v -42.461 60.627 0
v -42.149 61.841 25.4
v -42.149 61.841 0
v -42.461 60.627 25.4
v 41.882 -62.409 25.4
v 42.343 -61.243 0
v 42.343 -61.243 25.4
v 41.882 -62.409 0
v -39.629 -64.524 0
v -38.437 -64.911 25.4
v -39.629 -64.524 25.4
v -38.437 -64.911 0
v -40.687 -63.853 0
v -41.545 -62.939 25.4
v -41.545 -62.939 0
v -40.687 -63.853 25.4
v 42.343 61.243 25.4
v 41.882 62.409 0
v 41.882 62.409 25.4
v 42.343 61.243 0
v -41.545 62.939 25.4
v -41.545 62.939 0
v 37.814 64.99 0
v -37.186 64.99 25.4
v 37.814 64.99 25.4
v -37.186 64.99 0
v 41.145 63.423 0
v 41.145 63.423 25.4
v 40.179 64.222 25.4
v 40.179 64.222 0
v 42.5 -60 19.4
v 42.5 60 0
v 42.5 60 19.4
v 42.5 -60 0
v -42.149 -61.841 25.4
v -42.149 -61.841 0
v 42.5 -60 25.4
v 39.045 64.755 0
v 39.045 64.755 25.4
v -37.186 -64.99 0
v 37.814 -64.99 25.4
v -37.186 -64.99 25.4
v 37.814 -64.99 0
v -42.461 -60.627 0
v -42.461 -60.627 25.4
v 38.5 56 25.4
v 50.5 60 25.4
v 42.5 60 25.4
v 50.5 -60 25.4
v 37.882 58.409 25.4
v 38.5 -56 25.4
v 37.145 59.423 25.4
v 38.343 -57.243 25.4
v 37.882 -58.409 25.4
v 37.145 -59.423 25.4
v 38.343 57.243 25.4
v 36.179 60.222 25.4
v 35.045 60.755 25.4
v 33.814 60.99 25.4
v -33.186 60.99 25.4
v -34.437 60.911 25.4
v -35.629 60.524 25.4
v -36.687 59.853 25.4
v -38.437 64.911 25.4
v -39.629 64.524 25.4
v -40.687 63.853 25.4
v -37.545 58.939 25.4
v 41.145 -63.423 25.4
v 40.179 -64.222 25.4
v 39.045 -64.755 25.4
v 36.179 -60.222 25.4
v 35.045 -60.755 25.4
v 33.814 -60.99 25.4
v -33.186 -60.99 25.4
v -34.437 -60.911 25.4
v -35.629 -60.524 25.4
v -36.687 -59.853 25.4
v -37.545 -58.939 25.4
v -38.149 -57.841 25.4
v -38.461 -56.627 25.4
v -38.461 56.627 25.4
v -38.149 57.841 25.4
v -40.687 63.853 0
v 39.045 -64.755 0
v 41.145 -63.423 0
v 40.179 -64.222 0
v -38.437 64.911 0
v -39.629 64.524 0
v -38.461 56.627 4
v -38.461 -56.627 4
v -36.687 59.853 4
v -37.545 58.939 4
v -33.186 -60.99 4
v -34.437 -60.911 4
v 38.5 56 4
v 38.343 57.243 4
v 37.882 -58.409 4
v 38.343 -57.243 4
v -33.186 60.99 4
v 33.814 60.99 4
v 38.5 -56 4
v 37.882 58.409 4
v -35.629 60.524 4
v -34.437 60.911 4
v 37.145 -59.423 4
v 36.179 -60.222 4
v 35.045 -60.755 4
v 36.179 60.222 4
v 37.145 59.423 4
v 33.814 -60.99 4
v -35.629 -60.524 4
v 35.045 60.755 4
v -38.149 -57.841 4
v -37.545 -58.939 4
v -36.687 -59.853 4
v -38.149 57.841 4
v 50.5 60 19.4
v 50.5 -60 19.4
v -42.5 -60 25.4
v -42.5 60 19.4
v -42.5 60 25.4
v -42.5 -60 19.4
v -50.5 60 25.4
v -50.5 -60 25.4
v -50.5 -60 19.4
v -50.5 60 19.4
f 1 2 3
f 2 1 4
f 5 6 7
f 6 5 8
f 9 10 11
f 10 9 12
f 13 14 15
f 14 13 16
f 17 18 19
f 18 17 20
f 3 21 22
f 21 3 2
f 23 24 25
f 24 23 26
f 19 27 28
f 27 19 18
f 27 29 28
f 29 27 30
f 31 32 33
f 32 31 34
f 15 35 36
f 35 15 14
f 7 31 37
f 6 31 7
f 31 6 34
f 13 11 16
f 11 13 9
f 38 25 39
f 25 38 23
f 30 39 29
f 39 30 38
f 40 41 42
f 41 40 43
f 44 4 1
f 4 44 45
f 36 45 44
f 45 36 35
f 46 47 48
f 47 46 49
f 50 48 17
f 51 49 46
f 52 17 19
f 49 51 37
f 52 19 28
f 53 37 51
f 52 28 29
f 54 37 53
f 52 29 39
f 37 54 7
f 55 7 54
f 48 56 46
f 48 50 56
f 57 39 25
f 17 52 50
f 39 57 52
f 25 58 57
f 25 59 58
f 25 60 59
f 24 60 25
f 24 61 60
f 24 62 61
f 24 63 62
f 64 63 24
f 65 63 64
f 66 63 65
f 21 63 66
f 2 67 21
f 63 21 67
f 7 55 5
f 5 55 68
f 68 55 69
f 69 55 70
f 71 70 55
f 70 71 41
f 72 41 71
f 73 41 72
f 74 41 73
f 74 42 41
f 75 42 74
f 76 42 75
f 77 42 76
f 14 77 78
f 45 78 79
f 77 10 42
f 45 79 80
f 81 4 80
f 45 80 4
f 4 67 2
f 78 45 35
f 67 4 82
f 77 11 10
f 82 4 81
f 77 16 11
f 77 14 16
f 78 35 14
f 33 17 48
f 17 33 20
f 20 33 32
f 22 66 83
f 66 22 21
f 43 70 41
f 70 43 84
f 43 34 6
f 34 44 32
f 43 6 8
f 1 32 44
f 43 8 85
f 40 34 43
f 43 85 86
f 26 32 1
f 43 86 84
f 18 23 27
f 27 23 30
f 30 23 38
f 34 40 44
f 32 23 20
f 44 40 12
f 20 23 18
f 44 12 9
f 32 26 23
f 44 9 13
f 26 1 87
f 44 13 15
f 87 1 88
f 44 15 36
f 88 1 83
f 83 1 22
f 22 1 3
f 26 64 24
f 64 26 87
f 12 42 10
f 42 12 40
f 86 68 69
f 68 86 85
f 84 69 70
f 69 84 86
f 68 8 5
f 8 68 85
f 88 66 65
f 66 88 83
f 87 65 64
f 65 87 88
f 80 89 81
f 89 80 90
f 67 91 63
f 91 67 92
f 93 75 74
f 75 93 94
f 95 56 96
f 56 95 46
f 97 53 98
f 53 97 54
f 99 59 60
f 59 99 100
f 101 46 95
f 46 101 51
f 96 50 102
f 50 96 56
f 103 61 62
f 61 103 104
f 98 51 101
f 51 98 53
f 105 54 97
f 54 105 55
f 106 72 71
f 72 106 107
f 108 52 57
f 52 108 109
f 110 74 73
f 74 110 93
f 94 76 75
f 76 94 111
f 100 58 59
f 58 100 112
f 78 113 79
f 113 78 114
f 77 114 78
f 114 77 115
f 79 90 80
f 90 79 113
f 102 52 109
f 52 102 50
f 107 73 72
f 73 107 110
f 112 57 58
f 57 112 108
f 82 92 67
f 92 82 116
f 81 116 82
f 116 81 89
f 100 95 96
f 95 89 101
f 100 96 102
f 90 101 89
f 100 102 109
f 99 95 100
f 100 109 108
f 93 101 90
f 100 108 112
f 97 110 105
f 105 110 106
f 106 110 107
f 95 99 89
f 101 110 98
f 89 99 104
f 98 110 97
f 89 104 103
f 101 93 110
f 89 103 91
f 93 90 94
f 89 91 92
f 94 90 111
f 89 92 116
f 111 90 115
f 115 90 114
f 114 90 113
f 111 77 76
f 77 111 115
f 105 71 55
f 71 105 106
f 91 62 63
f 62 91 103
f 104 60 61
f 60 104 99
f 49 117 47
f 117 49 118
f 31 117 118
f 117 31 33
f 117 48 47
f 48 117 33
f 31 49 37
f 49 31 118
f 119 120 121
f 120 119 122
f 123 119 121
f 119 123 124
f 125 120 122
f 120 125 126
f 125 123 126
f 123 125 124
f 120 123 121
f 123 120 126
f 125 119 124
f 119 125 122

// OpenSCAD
$fn=25;

DEPTH = 130.;
//DEPTH = 20.;
WIDTH = 101;
HEIGHT = 25.4  ;
MAX_BOX_WIDTH = 87;

//outside dimensions of the box

lip = 8.0 ; 
lip_thick = 6;
                // tray hangs on a lip
width  = WIDTH - lip * 2;    //x dimension
depth = DEPTH;               //y dimension
height = HEIGHT;             //z dimension

if ( width > MAX_BOX_WIDTH)
{
    echo ("outside box width = ", width, "remove = ", width - MAX_BOX_WIDTH, " mm");
    assert(width < MAX_BOX_WIDTH);
}

//additional parameters
corner_radius = 5;      // radius of box corners
wall_thickness = 4;     // total thickness of any wall

// make 4 "posts" about 0,0,0 offset by +/-x +/-y 
module posts(x,y,z,h,r)
{
    translate([x,y,z]){         // move post to this location
        cylinder(r = r, h = h); // make one post
    }
    translate([-x,y,z]){        // move post to this location
        cylinder(r = r, h = h); // make one post
    }   
    translate([-x,-y,z]){       // move post to this location
        cylinder(r = r, h = h); // make one post
    }
    translate([x,-y,z]){        // move post to this location
        cylinder(r = r, h = h); // make one post
    }    
}


difference() { // make 2 boxes one inside the other and remove "inside box" from "outside box"
    // use posts to define OUTSIDE of a solid box centered on 0,0
    hull(){
        posts(  
            x=(width/2  - corner_radius),
            y=(depth/2 - corner_radius),
            z= 0,
            h= height,
            r = corner_radius);
    }
        
    // use posts to define INSIDE of a solid box centered on 0,0
    hull(){
        posts(
            x=(width/2  - corner_radius - wall_thickness),
            y=(depth/2 - corner_radius - wall_thickness),
            z= wall_thickness, // move up to create bottom
            h= height,
            r = corner_radius);
    }

}

translate ( [ width/2, -depth/2 + 5,  height - lip_thick ])
cube ( [ lip, depth - 10, lip_thick ] );

translate ( [ -width/2 -lip , -depth/2 + 5,  height - lip_thick ])
#cube ( [ lip, depth - 10, lip_thick ] );
